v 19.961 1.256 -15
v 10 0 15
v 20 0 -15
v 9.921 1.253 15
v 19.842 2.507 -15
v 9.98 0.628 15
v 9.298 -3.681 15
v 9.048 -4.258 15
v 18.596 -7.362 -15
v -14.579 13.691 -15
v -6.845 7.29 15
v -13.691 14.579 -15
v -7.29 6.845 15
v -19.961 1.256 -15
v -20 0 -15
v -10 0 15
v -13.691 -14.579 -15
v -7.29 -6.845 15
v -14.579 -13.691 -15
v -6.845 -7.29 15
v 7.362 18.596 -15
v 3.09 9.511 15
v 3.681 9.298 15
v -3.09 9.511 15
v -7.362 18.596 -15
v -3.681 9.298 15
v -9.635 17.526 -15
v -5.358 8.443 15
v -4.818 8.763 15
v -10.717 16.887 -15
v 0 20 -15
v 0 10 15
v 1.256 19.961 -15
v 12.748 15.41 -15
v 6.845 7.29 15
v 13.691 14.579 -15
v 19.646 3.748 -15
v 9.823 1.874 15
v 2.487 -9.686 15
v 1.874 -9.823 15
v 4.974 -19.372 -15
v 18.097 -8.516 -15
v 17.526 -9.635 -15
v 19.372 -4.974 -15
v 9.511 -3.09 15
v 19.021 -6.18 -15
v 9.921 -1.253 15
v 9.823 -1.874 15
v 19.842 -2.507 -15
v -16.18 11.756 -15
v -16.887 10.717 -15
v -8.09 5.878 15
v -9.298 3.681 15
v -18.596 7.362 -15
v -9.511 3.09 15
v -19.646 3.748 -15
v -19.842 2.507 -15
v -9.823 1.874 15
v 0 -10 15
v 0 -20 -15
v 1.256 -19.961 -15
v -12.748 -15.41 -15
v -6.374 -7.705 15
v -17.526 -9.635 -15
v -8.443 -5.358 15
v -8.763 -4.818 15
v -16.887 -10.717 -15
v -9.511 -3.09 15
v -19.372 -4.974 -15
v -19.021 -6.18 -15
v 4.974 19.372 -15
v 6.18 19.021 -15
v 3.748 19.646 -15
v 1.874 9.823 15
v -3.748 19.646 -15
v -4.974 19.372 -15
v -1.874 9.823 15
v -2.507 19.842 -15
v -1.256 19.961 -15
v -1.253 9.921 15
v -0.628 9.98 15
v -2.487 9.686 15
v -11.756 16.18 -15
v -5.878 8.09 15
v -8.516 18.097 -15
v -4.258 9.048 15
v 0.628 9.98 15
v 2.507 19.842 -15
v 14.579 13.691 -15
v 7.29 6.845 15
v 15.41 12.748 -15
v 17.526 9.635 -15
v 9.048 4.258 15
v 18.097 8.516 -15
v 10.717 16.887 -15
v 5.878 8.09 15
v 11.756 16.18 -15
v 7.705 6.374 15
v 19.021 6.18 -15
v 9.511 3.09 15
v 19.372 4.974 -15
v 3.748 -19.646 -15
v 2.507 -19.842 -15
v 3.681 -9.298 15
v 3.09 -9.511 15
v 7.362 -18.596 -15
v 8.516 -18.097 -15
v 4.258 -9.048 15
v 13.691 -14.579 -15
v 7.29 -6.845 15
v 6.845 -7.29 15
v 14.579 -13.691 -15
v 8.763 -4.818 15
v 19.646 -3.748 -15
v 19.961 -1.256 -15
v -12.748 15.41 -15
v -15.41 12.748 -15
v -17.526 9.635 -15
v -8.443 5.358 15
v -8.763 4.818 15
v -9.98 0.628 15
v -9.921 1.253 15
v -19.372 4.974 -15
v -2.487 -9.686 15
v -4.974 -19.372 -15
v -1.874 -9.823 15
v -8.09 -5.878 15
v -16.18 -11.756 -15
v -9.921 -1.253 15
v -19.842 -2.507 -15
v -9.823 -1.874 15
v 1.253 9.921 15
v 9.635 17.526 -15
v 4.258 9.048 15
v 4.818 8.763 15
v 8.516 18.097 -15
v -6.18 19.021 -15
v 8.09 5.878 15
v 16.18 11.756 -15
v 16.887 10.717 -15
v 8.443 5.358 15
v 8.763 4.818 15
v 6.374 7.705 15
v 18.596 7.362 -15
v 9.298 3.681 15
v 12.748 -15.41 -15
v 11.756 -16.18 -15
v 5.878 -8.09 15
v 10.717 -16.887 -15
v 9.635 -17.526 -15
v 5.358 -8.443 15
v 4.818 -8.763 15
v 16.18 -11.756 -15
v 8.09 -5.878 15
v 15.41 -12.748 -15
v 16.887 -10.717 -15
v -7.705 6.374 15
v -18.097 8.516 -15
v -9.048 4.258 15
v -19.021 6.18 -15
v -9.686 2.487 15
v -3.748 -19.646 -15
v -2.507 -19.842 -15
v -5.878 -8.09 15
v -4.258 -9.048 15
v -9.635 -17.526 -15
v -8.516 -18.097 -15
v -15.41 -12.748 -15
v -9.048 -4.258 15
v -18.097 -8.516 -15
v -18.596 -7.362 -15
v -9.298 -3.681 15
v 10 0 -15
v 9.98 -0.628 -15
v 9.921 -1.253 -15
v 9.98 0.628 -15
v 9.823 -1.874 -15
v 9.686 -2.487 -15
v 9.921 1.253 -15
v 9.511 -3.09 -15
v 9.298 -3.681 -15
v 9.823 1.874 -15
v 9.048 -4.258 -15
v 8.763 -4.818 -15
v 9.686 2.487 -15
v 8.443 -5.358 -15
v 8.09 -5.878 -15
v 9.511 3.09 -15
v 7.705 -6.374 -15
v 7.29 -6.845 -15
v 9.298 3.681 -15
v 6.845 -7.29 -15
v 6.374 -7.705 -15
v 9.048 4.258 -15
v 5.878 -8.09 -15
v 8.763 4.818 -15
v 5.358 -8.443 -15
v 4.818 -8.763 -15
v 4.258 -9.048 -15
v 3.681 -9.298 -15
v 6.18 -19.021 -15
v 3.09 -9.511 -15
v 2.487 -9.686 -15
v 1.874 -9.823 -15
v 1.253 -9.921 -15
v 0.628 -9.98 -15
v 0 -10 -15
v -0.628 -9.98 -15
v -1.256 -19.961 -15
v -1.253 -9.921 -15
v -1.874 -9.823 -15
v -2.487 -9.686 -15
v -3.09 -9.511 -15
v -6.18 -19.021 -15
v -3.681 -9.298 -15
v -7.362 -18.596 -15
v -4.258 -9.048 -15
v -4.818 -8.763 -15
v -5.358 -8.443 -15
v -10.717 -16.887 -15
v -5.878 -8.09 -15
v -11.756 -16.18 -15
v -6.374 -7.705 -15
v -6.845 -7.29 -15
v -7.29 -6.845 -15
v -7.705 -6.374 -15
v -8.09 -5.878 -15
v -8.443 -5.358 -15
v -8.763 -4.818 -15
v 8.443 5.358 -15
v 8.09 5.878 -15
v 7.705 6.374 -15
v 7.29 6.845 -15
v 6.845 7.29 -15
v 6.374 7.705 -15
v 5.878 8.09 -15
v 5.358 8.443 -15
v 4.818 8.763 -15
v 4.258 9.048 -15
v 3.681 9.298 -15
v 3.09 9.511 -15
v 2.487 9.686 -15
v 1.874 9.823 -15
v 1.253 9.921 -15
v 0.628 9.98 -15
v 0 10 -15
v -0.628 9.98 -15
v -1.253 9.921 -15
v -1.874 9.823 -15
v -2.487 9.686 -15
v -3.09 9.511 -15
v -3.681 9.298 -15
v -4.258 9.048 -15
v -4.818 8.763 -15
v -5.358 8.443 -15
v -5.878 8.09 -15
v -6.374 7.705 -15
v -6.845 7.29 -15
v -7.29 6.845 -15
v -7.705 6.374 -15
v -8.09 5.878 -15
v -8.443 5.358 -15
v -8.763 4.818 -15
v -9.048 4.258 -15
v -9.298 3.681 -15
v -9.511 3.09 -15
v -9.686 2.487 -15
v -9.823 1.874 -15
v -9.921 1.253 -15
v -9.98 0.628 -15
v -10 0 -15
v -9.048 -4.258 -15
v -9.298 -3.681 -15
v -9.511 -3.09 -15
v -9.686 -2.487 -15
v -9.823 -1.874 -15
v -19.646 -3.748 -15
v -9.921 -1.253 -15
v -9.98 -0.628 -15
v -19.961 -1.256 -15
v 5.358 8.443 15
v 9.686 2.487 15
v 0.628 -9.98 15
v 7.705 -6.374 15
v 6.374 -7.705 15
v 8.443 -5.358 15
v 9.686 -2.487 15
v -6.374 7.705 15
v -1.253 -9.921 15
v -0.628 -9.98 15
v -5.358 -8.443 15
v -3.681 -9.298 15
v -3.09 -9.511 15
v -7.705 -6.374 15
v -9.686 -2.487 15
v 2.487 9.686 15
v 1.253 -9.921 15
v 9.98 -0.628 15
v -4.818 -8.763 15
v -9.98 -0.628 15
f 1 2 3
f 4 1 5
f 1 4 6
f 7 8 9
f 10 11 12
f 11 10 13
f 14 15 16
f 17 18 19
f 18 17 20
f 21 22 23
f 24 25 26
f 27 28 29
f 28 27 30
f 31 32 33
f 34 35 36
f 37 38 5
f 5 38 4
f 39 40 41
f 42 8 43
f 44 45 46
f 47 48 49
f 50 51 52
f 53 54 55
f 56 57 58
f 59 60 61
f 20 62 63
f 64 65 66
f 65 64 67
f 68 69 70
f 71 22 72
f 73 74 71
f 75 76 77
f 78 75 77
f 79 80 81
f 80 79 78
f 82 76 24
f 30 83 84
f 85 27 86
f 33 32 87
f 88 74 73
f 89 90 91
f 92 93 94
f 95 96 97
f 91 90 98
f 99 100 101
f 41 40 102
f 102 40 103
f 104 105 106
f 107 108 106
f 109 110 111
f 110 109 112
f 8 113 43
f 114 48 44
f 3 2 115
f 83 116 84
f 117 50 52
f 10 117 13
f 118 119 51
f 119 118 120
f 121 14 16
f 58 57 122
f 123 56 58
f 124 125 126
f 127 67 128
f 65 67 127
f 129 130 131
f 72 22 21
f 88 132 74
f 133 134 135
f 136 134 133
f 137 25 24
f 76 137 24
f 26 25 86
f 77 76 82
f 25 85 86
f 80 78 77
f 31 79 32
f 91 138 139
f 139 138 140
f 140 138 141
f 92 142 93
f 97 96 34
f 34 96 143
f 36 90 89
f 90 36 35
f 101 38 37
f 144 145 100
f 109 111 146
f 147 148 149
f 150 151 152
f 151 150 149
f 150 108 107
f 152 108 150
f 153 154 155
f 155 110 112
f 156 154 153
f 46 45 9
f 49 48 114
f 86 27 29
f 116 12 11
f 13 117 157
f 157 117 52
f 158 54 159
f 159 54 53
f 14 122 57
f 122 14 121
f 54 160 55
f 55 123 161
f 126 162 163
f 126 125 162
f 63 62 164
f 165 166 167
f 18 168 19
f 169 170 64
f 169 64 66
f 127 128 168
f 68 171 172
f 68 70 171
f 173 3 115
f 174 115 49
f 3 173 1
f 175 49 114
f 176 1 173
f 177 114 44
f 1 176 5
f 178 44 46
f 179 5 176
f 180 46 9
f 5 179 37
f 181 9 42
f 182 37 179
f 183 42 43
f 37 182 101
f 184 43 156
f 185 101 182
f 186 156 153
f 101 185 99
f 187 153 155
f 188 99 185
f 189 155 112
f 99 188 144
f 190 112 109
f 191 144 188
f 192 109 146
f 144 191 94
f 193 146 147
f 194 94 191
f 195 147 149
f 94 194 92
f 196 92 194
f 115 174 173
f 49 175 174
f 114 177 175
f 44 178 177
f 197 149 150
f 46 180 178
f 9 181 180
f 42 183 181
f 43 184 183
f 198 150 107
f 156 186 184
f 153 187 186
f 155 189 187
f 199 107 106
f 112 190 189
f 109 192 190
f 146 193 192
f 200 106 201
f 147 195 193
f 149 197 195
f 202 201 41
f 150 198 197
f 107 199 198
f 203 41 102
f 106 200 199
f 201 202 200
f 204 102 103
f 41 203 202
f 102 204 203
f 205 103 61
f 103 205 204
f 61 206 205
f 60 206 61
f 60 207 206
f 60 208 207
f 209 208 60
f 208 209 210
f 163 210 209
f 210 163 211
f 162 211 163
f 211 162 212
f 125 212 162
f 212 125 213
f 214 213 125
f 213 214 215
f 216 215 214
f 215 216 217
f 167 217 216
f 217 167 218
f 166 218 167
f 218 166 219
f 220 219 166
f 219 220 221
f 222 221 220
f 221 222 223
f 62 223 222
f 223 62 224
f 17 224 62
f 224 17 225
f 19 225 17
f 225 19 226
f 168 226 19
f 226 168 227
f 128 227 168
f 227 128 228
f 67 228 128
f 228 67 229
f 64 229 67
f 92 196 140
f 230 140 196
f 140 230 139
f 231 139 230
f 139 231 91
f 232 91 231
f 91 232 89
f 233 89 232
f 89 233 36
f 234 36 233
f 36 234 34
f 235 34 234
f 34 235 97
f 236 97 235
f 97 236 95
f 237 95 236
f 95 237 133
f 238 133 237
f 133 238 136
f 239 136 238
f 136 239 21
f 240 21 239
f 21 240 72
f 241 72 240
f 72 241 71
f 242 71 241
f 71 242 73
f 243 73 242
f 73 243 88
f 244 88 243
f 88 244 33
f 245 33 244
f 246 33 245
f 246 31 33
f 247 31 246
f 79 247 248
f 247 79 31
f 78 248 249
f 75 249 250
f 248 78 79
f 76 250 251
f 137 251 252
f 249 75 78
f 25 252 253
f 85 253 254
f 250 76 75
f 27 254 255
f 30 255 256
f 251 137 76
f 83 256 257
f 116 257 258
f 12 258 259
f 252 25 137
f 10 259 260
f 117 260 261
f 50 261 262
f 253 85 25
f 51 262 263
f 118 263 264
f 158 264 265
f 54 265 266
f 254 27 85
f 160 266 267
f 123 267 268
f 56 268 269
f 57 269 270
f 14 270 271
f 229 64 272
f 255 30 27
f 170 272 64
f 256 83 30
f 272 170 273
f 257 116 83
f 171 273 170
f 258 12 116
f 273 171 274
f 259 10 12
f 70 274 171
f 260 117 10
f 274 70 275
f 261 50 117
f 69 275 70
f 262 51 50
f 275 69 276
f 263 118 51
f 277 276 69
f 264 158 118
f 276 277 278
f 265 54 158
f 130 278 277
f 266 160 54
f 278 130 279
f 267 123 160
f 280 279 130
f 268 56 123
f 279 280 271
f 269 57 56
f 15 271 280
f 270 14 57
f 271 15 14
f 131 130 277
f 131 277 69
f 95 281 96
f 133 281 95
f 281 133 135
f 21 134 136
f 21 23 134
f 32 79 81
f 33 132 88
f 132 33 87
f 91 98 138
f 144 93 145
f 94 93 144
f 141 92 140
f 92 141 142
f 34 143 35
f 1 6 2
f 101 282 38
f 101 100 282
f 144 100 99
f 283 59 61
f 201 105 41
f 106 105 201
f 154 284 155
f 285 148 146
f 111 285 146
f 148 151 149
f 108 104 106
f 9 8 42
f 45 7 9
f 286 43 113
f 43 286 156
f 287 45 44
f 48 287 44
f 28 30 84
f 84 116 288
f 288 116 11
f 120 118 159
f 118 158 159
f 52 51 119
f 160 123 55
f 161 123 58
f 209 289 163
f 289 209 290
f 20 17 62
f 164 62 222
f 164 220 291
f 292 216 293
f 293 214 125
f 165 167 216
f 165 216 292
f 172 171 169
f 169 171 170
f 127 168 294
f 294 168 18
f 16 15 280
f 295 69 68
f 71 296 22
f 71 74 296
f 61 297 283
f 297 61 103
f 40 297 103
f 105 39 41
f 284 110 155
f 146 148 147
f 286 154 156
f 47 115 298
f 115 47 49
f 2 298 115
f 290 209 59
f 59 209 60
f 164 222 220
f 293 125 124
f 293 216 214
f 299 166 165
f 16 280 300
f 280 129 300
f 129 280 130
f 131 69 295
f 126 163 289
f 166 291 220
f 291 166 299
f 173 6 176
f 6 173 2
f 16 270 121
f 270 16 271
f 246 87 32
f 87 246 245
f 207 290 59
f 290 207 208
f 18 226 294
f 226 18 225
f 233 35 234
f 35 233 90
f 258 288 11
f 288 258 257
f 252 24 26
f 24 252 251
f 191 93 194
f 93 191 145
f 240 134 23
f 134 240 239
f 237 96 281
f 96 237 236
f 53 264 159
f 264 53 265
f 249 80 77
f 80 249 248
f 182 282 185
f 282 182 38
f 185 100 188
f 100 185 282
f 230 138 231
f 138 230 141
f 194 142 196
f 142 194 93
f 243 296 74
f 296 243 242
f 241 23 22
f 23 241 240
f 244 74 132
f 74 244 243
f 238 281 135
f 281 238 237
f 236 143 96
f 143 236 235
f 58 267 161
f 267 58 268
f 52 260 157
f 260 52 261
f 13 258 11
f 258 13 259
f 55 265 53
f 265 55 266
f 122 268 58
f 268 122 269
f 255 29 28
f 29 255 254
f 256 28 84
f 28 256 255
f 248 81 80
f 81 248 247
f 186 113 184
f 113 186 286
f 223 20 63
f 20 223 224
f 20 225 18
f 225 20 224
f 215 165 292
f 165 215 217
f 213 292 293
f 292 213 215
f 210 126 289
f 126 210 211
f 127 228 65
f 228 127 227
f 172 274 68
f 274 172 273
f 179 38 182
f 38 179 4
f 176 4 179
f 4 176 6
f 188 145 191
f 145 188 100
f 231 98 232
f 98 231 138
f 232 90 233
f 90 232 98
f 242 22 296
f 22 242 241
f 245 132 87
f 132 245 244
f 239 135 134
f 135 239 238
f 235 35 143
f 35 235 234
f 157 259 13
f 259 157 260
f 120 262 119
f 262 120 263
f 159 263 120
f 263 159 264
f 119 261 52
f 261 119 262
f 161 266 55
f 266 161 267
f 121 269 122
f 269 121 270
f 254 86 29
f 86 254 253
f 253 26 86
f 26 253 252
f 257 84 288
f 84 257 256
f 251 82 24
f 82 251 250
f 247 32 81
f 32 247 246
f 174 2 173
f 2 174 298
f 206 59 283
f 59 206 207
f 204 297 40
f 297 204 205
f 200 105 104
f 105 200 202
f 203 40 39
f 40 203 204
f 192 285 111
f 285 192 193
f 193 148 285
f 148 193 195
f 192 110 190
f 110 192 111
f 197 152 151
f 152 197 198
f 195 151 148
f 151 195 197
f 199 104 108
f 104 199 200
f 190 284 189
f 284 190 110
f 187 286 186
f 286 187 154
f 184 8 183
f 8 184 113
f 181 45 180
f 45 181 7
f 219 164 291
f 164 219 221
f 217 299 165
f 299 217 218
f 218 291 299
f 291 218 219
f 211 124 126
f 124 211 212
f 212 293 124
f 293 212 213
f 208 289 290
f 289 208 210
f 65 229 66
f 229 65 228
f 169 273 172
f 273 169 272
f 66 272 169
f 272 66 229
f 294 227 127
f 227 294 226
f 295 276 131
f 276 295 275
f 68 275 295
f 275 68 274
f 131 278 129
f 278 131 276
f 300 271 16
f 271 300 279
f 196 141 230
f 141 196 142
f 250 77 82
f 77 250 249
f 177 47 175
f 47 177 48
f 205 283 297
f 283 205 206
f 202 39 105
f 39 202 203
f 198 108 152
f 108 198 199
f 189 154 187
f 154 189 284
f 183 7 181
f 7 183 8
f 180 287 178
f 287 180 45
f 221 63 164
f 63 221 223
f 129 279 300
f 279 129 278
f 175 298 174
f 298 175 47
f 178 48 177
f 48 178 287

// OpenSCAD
$fn = 100;

difference() {
    cylinder(30, 20, 10, center=true);
    cylinder(35, 10, 10, center=true);
}
